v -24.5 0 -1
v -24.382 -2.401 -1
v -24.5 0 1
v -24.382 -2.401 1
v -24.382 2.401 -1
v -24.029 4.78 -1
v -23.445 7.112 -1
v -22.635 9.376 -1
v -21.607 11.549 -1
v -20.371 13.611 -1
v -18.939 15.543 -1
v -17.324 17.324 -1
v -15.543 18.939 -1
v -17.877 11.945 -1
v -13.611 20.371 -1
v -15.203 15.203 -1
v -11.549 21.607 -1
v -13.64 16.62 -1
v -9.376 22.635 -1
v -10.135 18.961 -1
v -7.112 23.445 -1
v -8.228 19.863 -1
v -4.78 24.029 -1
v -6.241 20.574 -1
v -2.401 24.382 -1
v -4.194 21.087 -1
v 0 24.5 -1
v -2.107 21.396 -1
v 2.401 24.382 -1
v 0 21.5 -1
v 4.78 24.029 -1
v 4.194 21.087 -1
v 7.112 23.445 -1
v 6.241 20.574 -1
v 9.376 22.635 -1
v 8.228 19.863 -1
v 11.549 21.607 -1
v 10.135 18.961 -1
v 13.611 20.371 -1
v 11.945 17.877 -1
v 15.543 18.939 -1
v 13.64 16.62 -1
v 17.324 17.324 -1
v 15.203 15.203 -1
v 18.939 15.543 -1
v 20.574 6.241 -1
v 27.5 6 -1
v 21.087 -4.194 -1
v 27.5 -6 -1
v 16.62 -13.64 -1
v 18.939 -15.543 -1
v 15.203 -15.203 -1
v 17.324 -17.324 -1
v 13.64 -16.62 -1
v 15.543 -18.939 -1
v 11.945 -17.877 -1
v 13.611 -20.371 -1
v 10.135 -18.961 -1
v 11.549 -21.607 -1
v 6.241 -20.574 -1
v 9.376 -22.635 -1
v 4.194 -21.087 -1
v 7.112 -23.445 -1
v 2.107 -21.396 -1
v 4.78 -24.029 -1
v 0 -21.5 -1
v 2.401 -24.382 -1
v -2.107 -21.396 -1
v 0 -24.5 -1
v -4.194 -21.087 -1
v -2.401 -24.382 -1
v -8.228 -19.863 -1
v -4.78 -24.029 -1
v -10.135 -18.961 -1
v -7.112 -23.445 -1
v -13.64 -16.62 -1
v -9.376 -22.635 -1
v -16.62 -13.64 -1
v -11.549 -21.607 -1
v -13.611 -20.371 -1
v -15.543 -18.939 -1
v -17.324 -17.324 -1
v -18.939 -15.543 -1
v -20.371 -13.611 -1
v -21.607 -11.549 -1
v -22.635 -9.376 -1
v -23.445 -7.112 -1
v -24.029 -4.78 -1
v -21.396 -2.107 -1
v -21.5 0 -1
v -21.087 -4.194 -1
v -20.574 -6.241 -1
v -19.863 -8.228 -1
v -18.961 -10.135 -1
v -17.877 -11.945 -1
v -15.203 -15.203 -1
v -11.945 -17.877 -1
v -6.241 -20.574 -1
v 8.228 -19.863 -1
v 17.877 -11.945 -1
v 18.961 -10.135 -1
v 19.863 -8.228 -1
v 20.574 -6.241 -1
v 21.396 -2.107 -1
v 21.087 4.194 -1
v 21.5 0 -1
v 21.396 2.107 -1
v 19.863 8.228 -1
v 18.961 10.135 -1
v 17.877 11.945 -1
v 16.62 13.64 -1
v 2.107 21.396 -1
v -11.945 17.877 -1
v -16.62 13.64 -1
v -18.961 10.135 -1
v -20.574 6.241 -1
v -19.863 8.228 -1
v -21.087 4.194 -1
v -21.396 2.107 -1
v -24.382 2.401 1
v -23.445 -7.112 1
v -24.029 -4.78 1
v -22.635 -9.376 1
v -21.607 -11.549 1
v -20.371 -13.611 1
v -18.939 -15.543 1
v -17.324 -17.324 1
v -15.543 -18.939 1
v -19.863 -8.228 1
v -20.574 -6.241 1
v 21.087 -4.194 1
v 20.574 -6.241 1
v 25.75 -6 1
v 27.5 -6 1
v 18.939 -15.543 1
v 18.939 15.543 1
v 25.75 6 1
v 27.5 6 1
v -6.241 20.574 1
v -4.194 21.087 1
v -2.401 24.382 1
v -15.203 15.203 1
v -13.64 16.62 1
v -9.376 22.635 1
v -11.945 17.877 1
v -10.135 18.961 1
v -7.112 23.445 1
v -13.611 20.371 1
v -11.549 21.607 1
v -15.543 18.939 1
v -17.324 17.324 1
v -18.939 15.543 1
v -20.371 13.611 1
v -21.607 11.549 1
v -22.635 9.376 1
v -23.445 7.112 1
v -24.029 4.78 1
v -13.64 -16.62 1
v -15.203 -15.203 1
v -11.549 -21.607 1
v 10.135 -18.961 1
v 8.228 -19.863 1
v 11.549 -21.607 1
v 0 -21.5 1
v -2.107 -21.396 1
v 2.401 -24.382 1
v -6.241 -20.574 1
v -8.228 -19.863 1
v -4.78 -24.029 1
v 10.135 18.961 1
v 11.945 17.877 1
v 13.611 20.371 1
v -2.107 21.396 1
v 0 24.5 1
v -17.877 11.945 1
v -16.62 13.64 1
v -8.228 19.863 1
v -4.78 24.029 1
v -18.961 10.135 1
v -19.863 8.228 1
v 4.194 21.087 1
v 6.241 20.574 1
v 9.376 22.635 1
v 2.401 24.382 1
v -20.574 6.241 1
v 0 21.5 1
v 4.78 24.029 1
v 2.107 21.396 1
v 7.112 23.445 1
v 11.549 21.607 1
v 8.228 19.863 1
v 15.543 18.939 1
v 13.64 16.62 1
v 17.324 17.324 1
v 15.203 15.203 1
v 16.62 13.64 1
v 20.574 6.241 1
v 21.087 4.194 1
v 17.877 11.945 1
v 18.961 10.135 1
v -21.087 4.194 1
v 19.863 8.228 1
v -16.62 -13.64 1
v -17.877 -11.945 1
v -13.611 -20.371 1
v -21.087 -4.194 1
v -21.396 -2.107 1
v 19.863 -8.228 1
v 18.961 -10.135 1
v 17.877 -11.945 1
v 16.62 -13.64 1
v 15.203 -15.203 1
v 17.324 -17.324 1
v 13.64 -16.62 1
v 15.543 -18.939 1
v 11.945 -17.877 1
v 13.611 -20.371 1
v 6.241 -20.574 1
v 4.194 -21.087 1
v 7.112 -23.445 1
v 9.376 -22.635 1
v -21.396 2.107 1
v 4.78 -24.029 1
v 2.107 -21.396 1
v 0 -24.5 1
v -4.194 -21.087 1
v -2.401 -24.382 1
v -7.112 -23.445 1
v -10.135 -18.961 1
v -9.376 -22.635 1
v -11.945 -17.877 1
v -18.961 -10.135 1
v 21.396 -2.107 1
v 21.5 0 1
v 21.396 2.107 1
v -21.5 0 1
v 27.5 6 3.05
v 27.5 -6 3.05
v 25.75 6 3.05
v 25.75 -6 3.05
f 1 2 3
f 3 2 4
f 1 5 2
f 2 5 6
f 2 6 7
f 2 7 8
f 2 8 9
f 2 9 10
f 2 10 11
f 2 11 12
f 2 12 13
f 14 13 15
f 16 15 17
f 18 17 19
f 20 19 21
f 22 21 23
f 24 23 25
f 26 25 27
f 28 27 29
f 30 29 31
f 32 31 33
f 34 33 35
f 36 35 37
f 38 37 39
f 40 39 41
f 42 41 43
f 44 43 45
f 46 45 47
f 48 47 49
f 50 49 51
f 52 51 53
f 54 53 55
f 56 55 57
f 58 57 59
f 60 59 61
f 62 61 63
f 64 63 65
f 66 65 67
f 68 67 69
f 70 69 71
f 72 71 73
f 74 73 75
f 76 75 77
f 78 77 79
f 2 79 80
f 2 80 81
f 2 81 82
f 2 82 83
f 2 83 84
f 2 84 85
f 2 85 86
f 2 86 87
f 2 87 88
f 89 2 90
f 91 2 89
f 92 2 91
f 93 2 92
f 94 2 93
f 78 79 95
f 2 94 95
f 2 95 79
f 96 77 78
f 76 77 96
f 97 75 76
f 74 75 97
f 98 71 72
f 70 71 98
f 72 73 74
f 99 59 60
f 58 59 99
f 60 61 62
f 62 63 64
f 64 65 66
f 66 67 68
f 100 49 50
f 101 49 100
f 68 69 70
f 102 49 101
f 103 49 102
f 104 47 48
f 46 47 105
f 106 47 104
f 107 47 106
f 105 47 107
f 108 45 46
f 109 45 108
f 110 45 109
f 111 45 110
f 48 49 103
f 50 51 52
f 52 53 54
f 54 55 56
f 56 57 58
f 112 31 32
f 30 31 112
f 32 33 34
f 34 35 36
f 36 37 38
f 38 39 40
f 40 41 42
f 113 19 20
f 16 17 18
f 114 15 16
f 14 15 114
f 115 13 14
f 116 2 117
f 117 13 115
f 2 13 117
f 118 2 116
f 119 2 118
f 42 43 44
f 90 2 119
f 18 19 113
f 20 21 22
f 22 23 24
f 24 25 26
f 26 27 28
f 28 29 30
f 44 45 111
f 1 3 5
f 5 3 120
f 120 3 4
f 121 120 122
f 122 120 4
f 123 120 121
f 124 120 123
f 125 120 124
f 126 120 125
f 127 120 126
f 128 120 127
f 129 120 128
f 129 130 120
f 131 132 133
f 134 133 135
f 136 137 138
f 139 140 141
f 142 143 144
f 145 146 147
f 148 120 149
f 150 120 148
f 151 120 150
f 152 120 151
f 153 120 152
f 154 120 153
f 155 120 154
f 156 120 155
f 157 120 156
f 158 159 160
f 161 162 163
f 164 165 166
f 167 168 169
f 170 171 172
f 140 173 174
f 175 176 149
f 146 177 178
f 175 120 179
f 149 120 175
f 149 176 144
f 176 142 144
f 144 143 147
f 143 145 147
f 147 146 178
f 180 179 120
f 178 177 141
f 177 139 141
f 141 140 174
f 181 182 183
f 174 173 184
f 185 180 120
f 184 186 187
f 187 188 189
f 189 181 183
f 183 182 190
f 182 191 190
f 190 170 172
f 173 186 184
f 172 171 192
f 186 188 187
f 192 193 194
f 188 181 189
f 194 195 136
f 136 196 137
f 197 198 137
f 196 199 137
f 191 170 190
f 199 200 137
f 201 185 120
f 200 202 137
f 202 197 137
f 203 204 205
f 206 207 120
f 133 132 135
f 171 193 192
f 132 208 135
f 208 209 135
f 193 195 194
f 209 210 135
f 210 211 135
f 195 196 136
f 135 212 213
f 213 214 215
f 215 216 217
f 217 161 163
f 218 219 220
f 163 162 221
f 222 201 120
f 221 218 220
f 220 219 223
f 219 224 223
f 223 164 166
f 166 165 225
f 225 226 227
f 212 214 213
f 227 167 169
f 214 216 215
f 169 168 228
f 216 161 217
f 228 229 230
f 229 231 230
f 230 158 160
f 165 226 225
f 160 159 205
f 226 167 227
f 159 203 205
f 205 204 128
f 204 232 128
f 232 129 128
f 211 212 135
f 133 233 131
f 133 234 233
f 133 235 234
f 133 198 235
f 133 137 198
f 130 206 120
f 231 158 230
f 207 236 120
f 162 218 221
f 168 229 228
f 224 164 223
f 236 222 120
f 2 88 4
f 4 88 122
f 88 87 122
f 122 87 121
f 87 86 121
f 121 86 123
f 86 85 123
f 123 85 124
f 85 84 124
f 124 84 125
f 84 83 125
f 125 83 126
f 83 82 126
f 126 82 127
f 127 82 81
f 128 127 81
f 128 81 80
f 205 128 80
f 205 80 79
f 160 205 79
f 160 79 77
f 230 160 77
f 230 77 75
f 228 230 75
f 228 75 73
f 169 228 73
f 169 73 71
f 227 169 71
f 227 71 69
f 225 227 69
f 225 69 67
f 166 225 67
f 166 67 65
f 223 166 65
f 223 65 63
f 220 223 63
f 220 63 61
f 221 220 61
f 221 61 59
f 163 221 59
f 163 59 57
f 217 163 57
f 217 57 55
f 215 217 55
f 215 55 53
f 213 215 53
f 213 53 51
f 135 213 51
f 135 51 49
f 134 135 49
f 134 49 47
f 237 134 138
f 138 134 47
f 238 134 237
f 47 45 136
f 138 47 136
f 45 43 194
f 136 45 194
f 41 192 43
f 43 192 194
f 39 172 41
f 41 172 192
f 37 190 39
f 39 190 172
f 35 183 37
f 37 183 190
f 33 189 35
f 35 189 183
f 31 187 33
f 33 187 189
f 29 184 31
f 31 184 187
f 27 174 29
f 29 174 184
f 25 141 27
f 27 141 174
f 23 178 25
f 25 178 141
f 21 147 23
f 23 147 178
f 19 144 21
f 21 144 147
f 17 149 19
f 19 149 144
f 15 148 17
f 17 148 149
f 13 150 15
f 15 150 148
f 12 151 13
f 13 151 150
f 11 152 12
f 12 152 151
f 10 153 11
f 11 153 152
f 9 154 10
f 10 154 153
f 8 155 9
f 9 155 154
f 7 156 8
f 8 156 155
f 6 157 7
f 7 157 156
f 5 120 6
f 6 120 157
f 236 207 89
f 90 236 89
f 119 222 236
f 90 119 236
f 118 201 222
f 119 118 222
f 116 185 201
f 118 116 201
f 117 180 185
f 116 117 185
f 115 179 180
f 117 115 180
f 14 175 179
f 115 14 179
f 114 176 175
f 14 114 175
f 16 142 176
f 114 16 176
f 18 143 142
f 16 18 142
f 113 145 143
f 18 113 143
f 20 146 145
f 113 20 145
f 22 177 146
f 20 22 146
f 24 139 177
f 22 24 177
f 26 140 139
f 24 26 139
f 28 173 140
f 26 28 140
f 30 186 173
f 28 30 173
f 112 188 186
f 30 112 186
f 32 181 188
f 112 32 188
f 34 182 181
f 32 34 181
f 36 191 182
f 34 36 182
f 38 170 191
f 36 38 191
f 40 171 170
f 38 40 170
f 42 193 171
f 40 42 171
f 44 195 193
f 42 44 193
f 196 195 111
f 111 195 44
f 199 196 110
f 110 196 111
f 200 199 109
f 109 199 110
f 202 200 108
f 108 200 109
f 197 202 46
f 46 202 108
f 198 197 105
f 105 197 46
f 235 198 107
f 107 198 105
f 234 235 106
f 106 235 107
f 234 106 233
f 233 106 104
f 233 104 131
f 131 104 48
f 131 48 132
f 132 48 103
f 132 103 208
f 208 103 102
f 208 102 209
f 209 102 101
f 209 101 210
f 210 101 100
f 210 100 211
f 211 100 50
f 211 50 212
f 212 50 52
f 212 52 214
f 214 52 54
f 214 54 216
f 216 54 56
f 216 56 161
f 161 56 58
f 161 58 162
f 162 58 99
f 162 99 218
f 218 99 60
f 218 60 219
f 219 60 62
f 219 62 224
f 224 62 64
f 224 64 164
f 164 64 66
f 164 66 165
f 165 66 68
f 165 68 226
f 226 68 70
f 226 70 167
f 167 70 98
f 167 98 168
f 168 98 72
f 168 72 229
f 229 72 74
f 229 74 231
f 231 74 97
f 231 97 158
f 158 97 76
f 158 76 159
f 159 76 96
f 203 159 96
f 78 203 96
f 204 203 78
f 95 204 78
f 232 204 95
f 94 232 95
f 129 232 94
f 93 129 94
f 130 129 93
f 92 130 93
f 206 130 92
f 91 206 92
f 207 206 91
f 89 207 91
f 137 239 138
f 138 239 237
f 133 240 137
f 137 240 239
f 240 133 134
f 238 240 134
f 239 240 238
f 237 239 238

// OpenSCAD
// cylinder 97mm long, 25.5mm radius
// cylinder 11.5mm radius

module body_loop(bottle_r = 21.5, thickness=2) {
	union() {
		difference() {
			linear_extrude(height=2,center=true) {
				hull() {
					circle(bottle_r+3,$fn=64);
					translate([(bottle_r*2)/2,0,0])
						square(12,center=true);
				}
			}
			cylinder(r=bottle_r,h=3,center=true,$fn=64);
		}
		translate([bottle_r+6-thickness/2,0,2])
			cube([thickness,12,2.1],center=true);
	}
}

body_loop(21.5,1.75);
